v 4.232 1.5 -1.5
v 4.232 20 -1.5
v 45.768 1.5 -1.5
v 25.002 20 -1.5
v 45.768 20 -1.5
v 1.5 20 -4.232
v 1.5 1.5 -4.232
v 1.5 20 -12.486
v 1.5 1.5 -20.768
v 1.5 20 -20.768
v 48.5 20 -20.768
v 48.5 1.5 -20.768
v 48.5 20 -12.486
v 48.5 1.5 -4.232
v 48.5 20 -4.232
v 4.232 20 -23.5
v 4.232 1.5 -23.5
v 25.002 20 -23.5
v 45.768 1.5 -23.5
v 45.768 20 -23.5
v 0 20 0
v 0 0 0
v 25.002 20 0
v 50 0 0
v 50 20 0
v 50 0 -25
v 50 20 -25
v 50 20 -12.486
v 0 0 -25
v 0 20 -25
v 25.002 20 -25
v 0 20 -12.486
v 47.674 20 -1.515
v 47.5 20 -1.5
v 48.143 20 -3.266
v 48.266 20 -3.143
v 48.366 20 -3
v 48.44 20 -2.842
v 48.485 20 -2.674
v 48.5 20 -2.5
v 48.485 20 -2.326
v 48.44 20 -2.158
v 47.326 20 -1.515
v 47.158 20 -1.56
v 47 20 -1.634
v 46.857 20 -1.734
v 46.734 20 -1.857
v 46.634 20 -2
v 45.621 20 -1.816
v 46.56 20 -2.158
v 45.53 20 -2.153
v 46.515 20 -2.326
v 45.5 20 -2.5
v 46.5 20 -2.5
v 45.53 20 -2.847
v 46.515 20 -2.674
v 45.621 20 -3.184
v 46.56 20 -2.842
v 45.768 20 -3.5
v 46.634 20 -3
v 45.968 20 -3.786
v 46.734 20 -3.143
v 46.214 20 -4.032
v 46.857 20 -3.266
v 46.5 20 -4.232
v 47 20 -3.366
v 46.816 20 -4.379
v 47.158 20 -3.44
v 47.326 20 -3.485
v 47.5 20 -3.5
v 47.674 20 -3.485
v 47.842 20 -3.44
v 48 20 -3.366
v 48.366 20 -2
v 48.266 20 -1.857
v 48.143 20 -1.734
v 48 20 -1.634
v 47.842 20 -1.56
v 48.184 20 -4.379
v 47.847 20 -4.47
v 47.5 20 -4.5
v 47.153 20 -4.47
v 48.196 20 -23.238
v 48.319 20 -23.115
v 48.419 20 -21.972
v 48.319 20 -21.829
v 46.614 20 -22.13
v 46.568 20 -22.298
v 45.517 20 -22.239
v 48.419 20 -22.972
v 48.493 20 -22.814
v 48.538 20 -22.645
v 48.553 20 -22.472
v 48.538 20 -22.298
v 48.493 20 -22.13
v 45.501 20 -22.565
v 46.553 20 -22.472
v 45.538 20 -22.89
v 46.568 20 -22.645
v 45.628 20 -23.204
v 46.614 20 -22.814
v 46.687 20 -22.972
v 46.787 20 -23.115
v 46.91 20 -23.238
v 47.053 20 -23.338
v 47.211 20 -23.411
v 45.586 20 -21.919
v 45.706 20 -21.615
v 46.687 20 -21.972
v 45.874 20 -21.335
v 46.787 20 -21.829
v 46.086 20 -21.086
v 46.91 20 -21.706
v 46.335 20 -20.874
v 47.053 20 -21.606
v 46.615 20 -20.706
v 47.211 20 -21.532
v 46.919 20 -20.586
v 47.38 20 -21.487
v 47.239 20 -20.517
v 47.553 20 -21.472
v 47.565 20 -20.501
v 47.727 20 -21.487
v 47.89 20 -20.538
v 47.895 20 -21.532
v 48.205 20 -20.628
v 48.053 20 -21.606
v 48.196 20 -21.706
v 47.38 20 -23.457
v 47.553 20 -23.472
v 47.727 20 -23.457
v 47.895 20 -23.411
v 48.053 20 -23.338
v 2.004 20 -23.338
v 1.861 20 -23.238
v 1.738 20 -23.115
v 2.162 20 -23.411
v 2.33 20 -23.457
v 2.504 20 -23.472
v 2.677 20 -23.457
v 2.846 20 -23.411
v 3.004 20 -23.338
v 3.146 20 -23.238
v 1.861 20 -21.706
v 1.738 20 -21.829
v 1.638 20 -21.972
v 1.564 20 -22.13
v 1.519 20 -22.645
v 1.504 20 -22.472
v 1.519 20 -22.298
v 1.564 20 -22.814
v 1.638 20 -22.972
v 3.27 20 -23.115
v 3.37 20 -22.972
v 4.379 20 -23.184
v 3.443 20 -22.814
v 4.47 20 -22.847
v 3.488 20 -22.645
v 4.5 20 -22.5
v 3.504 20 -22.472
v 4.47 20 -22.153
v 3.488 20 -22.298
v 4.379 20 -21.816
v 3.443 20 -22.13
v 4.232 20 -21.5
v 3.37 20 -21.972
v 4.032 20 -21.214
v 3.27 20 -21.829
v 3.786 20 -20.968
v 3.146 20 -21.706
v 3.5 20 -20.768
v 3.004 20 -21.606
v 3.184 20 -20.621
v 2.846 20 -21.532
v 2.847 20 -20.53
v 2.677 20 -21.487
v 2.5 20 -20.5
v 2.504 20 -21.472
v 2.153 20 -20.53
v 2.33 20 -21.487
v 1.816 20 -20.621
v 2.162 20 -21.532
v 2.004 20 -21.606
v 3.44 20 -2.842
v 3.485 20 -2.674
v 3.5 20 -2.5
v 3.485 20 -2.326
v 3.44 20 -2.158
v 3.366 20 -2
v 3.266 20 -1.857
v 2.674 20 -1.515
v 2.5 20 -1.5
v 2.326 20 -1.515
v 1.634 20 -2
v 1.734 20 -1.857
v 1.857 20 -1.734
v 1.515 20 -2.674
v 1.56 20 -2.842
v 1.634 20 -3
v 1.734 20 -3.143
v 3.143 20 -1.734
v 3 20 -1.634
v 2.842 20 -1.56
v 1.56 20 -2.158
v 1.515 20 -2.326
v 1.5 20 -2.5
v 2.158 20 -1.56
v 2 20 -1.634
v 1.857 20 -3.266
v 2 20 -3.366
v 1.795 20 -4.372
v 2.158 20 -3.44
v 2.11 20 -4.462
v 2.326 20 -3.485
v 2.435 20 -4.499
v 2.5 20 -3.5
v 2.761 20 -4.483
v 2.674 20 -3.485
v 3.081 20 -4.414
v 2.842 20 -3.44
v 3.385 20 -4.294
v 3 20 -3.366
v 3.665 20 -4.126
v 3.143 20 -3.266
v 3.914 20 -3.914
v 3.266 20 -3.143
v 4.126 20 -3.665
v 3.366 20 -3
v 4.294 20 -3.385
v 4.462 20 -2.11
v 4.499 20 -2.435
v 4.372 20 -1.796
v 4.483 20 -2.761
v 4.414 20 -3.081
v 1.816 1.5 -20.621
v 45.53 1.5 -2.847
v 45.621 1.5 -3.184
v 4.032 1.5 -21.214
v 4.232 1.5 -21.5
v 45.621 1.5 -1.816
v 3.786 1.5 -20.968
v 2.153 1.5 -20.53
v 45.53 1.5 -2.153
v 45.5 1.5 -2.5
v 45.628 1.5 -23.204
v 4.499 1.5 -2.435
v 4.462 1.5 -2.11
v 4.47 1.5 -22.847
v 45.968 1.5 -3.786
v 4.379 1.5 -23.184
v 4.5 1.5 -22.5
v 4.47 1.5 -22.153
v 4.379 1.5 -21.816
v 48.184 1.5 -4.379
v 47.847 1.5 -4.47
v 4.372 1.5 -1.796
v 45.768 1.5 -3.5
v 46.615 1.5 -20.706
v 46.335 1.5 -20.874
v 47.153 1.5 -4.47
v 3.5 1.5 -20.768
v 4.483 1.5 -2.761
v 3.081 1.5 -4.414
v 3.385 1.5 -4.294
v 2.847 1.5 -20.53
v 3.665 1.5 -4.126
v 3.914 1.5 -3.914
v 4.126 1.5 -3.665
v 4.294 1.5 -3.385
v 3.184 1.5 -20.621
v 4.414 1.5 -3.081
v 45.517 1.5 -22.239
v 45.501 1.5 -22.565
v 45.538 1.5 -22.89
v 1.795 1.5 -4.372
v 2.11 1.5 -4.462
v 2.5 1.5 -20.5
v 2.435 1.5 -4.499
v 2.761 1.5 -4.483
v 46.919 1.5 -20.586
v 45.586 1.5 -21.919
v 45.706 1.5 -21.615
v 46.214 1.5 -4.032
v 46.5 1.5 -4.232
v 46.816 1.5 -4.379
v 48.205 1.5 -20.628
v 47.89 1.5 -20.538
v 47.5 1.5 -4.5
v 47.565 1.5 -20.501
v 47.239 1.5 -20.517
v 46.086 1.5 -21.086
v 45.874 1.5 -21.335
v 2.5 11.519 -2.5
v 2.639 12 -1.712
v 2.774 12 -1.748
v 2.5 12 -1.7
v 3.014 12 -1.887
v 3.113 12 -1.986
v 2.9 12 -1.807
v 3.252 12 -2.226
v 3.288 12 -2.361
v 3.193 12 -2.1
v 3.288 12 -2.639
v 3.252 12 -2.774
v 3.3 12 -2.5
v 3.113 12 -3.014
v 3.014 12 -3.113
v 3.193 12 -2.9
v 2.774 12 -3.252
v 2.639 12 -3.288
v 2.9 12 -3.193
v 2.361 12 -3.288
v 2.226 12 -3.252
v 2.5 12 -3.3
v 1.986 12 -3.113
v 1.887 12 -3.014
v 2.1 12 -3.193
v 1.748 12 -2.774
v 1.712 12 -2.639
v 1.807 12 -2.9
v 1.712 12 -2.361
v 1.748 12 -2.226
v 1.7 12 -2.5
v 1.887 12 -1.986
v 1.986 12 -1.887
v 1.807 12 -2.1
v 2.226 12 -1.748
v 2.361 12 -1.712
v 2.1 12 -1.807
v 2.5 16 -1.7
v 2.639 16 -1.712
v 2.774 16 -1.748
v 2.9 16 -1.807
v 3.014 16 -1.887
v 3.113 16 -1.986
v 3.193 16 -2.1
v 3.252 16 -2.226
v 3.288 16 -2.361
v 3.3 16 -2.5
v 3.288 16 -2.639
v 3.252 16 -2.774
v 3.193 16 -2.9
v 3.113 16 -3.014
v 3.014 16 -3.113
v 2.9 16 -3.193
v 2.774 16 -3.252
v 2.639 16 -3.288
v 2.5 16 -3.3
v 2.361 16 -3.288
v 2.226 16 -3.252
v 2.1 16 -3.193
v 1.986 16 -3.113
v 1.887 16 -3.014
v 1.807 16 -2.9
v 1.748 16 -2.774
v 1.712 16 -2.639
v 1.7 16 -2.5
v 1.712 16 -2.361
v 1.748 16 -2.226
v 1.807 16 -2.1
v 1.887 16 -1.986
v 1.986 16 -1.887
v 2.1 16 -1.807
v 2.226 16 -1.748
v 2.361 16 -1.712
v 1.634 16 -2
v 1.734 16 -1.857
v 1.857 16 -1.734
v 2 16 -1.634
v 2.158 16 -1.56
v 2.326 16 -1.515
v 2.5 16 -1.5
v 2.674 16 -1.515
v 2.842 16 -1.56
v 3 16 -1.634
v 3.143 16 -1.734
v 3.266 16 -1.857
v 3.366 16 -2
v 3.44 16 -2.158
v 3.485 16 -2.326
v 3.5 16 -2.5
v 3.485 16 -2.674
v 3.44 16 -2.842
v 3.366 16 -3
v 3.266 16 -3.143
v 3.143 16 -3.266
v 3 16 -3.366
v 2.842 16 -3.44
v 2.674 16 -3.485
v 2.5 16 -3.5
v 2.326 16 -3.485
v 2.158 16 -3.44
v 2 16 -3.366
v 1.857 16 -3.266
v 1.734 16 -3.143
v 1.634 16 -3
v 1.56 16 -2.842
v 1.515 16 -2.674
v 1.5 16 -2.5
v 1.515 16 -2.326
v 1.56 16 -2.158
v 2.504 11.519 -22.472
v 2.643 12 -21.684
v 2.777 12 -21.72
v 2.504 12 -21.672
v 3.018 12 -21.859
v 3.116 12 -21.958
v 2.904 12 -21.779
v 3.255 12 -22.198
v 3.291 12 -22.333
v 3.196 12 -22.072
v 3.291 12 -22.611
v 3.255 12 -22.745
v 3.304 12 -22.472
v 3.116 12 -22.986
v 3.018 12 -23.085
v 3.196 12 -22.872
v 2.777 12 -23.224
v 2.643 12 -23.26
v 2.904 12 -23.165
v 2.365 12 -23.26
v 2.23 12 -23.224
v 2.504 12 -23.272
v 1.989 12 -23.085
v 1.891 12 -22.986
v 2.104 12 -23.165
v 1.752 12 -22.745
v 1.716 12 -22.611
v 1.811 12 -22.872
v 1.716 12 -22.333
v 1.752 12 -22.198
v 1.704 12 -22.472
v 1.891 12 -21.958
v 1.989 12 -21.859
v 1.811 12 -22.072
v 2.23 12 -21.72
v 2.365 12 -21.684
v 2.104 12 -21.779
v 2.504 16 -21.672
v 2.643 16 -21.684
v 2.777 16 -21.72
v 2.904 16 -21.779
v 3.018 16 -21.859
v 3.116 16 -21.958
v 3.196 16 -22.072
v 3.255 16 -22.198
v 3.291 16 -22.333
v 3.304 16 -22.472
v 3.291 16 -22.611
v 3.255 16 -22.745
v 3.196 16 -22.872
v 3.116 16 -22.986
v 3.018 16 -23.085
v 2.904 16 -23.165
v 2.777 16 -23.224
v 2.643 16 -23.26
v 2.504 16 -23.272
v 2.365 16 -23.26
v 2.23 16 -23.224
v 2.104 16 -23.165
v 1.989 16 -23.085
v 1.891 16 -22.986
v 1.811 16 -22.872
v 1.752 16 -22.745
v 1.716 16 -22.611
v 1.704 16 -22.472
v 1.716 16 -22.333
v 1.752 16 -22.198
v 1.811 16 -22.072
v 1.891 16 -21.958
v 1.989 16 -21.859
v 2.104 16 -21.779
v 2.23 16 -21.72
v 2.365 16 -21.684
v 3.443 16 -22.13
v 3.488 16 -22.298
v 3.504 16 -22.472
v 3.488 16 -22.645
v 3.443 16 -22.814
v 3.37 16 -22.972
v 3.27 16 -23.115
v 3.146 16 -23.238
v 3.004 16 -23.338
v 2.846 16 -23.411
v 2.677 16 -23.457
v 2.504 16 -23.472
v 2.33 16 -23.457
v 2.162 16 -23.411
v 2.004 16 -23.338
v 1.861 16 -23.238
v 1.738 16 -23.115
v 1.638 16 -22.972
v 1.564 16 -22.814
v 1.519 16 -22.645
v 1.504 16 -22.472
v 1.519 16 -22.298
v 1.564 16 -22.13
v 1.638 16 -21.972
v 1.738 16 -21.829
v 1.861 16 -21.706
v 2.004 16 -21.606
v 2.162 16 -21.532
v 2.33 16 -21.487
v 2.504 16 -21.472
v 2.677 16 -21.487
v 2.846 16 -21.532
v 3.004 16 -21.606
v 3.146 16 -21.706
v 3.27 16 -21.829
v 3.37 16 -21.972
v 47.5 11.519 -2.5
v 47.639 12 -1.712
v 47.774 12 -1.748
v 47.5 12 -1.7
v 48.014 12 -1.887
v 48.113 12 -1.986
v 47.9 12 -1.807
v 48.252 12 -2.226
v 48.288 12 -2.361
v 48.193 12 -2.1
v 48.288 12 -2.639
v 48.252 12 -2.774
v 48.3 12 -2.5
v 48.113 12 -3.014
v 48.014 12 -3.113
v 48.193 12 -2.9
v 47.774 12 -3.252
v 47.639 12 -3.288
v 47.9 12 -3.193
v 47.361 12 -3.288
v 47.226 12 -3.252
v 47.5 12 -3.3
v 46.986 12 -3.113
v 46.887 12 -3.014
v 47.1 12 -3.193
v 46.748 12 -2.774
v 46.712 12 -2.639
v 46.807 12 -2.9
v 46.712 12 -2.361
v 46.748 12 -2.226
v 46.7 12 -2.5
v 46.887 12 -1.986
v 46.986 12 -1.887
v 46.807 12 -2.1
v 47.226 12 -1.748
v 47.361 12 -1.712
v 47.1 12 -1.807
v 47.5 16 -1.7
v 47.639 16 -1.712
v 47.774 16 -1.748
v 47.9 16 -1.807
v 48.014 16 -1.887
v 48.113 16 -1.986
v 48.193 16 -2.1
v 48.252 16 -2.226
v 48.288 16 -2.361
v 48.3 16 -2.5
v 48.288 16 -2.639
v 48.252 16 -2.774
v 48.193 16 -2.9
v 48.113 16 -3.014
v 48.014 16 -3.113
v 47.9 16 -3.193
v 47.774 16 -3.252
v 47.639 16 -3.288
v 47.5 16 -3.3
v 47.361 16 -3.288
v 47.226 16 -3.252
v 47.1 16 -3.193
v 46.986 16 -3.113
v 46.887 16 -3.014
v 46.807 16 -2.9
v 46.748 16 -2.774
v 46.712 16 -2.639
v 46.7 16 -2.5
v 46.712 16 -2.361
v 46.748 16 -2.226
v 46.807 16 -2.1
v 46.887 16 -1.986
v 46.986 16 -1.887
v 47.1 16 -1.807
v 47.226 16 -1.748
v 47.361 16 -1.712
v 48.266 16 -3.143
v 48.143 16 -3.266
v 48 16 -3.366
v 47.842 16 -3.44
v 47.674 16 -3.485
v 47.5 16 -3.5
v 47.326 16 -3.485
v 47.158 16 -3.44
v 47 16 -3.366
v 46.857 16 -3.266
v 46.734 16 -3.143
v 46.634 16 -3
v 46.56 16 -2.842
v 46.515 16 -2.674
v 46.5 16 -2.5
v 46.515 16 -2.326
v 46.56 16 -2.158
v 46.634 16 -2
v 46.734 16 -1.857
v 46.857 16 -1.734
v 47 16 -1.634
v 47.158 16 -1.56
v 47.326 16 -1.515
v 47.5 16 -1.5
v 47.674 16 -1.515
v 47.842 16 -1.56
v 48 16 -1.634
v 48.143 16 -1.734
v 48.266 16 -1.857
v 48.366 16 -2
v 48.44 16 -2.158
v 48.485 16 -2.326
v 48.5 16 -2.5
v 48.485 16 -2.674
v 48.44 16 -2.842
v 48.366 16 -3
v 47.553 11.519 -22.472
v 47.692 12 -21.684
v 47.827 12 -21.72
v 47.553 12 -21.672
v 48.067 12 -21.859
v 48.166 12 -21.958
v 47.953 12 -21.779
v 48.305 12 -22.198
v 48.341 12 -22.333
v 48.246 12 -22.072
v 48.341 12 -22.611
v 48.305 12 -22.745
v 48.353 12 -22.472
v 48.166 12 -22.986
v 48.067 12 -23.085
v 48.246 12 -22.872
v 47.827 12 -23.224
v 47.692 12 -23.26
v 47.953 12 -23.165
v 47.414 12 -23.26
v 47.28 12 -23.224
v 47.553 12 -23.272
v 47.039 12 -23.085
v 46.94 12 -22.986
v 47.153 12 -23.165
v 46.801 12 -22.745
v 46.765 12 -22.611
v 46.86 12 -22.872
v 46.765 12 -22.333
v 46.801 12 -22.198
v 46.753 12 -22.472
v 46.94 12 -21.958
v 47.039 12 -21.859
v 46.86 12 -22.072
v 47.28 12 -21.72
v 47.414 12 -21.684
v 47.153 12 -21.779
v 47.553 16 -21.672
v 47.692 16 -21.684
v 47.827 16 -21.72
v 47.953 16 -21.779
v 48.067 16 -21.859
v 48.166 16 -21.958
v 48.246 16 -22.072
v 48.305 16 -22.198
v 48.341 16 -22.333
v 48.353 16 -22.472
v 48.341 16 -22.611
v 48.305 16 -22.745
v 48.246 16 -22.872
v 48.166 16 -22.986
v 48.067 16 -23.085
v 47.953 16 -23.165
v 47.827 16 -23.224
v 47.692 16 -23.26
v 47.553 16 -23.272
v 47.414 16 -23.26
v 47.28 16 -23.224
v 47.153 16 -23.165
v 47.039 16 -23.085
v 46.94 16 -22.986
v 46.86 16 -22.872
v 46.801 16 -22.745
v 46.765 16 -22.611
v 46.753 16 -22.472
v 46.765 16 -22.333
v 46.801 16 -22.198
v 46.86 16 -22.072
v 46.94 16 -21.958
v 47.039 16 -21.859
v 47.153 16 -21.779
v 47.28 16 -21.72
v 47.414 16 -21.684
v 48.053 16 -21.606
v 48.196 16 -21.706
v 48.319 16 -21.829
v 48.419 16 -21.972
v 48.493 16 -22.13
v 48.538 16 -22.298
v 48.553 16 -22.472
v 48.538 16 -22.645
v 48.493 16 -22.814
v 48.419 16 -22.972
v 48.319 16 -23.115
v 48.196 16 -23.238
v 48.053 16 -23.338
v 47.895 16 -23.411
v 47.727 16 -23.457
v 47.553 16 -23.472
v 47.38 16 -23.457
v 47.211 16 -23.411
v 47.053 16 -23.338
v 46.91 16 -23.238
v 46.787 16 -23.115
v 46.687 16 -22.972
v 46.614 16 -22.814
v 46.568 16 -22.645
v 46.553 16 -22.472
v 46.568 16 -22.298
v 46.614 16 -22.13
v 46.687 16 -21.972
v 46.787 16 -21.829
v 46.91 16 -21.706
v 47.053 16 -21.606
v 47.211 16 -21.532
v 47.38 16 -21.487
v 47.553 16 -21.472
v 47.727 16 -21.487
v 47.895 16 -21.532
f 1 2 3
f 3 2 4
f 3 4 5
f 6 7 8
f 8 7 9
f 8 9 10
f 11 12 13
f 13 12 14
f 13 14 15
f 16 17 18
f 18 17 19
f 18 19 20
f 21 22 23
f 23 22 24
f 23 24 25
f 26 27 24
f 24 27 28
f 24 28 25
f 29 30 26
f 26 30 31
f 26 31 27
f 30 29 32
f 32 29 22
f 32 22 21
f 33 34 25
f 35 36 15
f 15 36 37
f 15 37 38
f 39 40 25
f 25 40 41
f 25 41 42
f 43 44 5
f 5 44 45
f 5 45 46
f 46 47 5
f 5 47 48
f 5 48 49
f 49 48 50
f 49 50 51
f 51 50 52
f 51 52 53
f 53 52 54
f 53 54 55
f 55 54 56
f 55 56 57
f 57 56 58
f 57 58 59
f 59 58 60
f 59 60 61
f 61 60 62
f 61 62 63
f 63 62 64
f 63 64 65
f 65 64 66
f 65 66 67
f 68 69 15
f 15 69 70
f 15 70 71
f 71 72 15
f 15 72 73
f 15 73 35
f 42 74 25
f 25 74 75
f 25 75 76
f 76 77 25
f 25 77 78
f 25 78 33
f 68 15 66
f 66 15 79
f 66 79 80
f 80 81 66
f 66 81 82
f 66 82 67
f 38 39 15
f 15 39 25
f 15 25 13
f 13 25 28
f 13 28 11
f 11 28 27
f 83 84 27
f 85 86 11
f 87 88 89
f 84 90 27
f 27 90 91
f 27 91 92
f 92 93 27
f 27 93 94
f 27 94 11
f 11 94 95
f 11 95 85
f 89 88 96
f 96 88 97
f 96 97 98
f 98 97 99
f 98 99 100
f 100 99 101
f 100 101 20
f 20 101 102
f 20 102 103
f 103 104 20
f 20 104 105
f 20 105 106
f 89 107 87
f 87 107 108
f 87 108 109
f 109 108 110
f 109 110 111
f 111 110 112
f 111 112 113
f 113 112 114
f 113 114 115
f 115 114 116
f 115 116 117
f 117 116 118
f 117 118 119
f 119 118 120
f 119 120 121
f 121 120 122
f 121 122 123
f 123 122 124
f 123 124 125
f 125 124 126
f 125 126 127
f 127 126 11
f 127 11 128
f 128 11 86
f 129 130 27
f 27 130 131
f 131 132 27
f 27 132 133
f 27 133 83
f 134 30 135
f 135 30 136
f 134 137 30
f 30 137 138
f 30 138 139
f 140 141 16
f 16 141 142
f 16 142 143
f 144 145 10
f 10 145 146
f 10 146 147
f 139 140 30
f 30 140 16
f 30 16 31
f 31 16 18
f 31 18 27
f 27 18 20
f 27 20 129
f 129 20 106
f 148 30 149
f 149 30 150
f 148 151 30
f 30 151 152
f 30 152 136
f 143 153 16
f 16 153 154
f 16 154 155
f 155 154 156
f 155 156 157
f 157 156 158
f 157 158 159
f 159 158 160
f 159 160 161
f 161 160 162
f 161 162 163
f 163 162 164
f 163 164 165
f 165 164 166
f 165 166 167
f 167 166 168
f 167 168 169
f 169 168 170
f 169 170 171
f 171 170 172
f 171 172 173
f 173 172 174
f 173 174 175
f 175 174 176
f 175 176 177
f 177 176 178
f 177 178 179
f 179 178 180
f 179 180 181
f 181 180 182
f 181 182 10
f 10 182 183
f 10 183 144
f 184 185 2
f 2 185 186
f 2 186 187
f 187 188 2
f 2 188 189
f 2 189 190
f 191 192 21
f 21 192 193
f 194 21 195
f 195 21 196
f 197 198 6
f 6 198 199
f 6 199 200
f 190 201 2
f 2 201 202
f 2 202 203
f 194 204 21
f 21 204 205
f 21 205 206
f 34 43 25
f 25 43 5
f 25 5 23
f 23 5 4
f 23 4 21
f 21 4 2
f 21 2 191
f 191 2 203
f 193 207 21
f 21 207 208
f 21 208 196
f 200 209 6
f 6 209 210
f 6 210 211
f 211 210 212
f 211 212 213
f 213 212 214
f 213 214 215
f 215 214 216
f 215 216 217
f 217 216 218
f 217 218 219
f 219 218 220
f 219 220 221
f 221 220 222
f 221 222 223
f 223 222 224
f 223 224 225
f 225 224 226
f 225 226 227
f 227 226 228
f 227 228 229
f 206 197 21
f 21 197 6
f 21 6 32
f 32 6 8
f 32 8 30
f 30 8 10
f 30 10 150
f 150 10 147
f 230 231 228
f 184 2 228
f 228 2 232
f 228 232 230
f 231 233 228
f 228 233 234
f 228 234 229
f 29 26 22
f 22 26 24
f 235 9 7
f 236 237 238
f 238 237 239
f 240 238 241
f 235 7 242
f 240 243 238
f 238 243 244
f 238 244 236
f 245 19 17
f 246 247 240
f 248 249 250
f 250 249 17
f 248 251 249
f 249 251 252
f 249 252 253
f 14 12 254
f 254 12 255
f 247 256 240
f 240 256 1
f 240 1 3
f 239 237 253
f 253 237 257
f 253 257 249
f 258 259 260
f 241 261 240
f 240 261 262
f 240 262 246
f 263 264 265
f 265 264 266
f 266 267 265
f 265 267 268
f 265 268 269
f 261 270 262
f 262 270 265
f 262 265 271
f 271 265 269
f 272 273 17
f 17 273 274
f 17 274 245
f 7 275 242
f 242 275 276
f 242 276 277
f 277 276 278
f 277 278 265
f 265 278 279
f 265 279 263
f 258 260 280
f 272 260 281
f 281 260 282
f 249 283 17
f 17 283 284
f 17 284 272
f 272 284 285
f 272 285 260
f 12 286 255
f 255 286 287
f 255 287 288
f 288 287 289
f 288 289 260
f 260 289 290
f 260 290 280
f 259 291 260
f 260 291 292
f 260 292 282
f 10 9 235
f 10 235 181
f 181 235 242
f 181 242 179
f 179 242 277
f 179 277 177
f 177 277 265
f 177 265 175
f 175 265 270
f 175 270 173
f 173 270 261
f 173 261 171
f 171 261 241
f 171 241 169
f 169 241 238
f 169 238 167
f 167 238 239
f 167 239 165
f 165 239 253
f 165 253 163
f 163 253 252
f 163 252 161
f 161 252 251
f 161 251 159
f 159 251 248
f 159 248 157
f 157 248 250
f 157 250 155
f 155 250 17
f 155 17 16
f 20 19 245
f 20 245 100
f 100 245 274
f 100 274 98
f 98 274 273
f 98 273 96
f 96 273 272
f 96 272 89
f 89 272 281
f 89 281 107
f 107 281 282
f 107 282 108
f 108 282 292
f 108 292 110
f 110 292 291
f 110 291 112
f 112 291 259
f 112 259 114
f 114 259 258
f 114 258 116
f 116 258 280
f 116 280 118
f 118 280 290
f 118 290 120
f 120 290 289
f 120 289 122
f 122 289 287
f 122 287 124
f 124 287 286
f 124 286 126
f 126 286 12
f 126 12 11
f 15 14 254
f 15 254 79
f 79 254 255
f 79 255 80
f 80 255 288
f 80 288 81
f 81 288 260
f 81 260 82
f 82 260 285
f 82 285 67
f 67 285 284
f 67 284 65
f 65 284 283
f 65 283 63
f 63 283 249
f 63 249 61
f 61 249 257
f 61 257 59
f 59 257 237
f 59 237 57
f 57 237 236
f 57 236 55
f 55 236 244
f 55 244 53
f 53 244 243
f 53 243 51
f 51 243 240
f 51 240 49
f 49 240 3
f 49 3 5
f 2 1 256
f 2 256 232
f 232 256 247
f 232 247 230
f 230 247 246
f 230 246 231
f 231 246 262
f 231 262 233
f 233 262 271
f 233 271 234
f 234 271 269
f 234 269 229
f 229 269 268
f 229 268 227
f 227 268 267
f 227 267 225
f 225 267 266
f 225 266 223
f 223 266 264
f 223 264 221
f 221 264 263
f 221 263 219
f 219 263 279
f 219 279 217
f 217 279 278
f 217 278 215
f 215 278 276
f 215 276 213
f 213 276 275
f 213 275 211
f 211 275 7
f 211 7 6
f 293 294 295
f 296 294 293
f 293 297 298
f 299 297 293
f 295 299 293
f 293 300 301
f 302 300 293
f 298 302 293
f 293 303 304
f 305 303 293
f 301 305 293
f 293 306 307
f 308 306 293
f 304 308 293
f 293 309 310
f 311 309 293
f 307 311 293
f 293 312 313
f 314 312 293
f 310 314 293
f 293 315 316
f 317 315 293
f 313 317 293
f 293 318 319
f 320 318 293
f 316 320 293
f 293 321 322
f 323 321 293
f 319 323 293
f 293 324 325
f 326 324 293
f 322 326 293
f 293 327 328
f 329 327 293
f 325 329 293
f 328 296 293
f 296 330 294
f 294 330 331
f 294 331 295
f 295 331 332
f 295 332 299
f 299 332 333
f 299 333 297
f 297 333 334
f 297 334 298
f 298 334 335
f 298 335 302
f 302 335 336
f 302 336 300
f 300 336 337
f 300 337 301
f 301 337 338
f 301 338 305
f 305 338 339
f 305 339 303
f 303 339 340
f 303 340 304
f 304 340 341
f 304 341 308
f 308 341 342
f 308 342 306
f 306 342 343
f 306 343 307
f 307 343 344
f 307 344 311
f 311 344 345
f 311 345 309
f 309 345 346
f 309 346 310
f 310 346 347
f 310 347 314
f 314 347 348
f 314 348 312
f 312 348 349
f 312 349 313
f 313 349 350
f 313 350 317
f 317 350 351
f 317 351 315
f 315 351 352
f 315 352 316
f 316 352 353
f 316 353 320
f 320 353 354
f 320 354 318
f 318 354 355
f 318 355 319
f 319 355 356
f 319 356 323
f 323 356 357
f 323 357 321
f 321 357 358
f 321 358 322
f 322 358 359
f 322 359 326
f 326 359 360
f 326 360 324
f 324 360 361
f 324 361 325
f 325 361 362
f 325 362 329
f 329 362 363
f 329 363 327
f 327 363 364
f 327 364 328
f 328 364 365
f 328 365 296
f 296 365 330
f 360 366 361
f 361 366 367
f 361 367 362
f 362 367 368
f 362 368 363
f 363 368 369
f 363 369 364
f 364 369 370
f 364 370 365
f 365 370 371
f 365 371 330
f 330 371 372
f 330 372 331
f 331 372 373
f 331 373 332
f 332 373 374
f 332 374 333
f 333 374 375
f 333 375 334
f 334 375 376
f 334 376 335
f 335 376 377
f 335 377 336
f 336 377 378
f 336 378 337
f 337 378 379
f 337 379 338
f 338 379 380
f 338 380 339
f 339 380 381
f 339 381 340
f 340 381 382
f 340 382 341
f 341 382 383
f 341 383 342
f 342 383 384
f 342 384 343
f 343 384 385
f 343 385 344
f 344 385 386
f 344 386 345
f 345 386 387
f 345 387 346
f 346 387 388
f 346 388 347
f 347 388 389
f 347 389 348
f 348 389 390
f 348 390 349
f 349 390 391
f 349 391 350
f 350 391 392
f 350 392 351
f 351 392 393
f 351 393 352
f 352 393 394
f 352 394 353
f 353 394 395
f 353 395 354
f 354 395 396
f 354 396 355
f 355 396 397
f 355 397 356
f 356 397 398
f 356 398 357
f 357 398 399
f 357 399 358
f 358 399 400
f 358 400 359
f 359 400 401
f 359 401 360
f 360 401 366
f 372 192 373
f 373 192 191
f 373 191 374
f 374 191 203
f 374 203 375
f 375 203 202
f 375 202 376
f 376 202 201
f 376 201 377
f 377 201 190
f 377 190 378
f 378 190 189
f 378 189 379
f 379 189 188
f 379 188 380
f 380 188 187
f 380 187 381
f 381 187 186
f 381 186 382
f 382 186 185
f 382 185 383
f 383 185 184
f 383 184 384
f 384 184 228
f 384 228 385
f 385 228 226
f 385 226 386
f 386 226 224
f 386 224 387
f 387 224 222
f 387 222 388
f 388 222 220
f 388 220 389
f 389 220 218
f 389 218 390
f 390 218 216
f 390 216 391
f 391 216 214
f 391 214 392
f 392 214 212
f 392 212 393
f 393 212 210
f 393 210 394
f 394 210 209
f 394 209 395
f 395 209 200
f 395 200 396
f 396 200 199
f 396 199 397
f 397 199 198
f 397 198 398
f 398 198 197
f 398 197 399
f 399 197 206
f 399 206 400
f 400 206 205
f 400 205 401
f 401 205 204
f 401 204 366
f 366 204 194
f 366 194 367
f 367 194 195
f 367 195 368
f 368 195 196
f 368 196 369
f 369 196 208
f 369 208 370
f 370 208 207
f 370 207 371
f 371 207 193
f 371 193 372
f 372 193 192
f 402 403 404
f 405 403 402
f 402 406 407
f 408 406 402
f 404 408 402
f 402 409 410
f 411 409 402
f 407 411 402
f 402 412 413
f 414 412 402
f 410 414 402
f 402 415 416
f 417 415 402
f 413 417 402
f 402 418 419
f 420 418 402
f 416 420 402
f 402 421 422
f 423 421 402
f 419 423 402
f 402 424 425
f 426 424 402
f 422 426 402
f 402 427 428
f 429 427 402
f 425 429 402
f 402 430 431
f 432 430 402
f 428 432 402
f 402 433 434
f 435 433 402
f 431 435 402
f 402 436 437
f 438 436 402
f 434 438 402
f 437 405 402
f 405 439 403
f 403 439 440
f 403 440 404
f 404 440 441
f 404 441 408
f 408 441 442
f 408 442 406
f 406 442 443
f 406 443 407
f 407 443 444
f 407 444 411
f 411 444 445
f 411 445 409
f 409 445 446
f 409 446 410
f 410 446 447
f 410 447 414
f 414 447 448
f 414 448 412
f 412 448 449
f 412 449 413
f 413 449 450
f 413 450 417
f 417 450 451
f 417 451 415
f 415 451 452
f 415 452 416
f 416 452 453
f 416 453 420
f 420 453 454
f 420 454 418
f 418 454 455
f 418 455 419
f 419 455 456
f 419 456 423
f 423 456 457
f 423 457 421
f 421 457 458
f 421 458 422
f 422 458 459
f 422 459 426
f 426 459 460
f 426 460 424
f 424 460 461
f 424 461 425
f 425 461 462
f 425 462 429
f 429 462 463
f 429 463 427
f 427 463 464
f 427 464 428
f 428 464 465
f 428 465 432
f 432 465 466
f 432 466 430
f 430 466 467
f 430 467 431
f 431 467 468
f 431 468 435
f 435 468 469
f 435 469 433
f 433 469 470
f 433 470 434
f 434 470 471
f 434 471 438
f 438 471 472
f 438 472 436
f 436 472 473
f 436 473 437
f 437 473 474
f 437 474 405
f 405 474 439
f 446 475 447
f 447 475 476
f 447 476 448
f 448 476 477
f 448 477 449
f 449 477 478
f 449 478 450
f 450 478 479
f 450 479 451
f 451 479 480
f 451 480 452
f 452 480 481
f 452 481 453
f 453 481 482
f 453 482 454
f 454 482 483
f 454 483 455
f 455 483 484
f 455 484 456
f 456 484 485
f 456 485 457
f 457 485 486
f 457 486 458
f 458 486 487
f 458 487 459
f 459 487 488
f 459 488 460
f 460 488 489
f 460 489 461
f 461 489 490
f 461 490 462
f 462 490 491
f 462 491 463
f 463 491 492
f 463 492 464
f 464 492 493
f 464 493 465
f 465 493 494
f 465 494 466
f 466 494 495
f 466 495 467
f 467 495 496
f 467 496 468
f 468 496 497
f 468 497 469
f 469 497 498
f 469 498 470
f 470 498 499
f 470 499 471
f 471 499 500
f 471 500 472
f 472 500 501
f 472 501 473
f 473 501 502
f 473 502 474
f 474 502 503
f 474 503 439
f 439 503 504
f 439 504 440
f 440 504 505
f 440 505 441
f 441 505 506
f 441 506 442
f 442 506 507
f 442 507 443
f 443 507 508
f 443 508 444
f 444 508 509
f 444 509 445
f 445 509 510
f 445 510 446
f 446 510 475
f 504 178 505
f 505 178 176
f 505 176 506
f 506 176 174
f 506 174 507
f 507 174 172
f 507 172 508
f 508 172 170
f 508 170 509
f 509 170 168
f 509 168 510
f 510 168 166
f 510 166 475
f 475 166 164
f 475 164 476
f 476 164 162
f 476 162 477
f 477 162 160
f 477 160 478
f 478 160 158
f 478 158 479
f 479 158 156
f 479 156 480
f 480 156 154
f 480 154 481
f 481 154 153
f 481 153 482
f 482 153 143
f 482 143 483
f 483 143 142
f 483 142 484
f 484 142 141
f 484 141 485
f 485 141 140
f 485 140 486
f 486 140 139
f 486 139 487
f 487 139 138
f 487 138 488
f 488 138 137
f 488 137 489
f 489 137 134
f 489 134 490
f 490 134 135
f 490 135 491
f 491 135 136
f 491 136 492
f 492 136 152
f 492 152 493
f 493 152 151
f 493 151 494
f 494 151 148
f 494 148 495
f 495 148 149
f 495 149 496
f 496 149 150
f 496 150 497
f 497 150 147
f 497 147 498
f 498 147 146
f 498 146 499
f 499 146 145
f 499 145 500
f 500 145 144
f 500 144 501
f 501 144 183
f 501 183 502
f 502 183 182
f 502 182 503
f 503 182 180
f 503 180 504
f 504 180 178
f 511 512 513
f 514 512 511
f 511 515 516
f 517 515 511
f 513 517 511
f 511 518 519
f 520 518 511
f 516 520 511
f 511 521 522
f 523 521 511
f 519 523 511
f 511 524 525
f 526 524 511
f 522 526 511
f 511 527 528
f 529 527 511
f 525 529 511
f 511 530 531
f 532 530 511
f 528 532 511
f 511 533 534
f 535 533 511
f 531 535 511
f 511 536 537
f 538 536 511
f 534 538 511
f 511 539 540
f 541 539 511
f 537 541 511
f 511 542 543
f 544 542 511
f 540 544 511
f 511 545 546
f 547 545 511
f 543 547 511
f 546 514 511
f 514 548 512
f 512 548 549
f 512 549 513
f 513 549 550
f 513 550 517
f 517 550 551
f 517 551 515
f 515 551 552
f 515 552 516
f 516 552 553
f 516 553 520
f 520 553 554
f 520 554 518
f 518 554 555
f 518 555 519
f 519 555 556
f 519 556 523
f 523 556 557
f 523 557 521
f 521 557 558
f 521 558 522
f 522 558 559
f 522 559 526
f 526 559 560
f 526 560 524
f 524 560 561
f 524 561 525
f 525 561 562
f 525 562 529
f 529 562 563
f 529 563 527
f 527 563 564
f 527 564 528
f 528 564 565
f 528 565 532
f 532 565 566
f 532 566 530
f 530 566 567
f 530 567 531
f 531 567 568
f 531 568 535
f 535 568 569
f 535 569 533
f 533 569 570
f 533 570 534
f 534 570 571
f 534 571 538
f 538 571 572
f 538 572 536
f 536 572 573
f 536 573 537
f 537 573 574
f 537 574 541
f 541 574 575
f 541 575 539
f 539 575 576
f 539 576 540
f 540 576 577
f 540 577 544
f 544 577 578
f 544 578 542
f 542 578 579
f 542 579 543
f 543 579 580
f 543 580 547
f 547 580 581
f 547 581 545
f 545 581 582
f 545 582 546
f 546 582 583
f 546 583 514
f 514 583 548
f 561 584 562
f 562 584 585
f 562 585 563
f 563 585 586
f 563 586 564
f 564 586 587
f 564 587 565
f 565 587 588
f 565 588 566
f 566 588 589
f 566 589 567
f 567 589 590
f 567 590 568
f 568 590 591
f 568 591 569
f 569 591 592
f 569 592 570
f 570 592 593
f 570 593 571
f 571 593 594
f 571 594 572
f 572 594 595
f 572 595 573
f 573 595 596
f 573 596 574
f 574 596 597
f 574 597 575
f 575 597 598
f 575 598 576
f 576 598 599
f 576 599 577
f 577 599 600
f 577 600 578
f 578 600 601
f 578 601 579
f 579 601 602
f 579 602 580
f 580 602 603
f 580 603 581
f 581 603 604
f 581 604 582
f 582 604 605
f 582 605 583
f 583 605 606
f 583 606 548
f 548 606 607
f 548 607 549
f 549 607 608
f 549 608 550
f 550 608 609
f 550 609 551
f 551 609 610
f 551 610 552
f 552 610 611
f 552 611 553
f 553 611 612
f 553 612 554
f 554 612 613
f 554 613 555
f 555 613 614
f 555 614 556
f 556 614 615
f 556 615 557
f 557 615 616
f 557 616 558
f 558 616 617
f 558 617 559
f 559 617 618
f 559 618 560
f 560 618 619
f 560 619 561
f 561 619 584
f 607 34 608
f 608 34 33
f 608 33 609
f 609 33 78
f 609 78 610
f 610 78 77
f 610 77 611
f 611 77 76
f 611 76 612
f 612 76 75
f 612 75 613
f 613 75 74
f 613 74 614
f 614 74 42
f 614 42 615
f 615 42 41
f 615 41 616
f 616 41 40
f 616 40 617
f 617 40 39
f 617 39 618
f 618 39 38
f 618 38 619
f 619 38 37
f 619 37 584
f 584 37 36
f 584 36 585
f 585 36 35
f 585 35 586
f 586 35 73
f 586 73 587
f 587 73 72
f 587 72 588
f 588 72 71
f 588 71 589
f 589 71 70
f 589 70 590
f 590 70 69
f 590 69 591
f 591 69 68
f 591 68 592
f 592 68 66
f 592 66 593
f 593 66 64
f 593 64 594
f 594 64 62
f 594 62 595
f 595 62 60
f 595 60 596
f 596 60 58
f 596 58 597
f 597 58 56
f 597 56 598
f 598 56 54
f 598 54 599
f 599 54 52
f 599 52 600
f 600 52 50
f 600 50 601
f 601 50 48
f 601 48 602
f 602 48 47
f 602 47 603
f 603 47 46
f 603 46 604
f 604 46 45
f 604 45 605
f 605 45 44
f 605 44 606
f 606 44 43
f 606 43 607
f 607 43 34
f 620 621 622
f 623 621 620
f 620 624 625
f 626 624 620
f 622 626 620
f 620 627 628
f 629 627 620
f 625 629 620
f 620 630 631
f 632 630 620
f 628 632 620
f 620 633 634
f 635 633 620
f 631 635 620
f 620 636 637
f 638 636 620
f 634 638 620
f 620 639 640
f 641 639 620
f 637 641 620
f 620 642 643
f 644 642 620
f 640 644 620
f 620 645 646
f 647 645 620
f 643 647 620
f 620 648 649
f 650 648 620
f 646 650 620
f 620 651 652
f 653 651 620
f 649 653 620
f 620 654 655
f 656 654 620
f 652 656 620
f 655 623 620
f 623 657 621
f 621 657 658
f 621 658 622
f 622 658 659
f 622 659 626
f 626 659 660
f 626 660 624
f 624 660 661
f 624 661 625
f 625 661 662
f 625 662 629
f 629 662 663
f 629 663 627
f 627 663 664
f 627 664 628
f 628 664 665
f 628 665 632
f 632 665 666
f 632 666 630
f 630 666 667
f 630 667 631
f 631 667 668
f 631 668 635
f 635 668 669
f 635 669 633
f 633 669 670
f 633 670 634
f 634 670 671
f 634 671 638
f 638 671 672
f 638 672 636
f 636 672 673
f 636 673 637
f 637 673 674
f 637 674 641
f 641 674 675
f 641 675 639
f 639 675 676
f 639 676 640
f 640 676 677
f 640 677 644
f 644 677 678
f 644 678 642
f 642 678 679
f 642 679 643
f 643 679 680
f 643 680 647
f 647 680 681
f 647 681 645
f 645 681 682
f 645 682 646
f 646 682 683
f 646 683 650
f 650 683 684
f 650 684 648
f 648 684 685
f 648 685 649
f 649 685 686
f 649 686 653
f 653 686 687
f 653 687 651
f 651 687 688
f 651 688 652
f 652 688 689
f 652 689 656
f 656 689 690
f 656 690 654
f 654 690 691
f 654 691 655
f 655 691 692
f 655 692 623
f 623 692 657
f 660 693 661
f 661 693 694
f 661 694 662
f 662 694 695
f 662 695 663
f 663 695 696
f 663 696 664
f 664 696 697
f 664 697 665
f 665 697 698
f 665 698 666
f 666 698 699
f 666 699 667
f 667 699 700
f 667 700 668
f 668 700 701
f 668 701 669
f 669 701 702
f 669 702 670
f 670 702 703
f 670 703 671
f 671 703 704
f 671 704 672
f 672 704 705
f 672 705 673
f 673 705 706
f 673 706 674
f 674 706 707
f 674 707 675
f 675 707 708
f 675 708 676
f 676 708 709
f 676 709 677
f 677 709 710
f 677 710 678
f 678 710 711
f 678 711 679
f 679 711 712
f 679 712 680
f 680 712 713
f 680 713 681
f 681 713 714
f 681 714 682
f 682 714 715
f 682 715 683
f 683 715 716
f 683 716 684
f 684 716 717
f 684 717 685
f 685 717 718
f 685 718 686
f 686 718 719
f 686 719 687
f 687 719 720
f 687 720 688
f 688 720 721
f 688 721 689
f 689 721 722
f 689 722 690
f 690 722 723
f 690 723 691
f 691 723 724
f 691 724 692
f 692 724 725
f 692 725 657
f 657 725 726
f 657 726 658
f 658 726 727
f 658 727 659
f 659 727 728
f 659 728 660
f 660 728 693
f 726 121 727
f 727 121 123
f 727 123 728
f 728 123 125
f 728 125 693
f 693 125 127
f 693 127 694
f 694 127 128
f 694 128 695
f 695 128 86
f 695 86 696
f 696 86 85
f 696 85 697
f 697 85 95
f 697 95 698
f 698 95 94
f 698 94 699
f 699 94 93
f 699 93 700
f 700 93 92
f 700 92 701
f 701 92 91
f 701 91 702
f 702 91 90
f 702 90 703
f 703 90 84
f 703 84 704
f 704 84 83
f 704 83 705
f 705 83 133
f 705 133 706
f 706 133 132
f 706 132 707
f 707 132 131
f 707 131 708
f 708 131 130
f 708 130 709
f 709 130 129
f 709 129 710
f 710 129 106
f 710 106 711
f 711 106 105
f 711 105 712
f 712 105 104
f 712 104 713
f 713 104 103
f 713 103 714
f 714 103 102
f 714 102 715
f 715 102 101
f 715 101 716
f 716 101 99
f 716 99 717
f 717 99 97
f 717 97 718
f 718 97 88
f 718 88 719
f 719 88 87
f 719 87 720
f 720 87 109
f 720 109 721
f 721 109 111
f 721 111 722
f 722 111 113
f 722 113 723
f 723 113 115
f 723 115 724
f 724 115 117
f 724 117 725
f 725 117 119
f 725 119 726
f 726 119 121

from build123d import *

# Parameters (mm, degrees)
SKETCH_1_W           = 50
SKETCH_1_H           = 25
EXTRUDE_3_DEPTH      = 20
SHELL_1_T            = -1.5
SKETCH_1_3_R         = 2
EXTRUDE_4_DEPTH      = 20
M2X0_4_3_D           = 1.6
M2X0_4_3_DEPTH       = 8
M2X0_4_3_CBORE_D     = 2
M2X0_4_3_CBORE_DEPTH = 4
M2X0_4_3_TIP         = 0.480688495


with BuildPart() as part:
    # 草图1 → 凸台-拉伸3 (new body)
    with BuildSketch(Plane(origin=(0, 0, 0), x_dir=(1, 0, 0), z_dir=(0, 1, 0))):
        with Locations((25, 12.5)):
            Rectangle(SKETCH_1_W, SKETCH_1_H)
    extrude(amount=EXTRUDE_3_DEPTH)

    # 抽壳1
    shell_1_openings = [part.faces().sort_by_distance(p)[0] for p in [
        (25, 20, -12.5),
    ]]
    offset(amount=SHELL_1_T, openings=shell_1_openings, kind=Kind.INTERSECTION)

    # 草图1<3> → 凸台-拉伸4 (add)
    with BuildSketch(Plane(origin=(0, 0, 0), x_dir=(1, 0, 0), z_dir=(0, 1, 0))):
        with Locations((2.5, 22.5)):
            Circle(SKETCH_1_3_R)
        with Locations((47.5, 22.5)):
            Circle(SKETCH_1_3_R)
        with Locations((47.5, 2.5)):
            Circle(SKETCH_1_3_R)
        with Locations((2.5, 2.5)):
            Circle(SKETCH_1_3_R)
    extrude(amount=EXTRUDE_4_DEPTH)

    # M2x0.4 螺纹孔3
    with Locations(Plane(origin=(0, 20, 0), x_dir=(1, 0, 0), z_dir=(0, 1, 0))):
        with Locations((47.553254434, 22.471754376), (47.5, 2.5), (2.503648452, 22.471754376), (2.5, 2.5)):
            CounterBoreHole(M2X0_4_3_D / 2, M2X0_4_3_CBORE_D / 2, M2X0_4_3_CBORE_DEPTH, depth=M2X0_4_3_DEPTH)
            with Locations((0, 0, -(M2X0_4_3_DEPTH + M2X0_4_3_TIP / 2))):  # 118° drill point
                Cone(0, M2X0_4_3_D / 2, M2X0_4_3_TIP, mode=Mode.SUBTRACT)


solid = part.part
